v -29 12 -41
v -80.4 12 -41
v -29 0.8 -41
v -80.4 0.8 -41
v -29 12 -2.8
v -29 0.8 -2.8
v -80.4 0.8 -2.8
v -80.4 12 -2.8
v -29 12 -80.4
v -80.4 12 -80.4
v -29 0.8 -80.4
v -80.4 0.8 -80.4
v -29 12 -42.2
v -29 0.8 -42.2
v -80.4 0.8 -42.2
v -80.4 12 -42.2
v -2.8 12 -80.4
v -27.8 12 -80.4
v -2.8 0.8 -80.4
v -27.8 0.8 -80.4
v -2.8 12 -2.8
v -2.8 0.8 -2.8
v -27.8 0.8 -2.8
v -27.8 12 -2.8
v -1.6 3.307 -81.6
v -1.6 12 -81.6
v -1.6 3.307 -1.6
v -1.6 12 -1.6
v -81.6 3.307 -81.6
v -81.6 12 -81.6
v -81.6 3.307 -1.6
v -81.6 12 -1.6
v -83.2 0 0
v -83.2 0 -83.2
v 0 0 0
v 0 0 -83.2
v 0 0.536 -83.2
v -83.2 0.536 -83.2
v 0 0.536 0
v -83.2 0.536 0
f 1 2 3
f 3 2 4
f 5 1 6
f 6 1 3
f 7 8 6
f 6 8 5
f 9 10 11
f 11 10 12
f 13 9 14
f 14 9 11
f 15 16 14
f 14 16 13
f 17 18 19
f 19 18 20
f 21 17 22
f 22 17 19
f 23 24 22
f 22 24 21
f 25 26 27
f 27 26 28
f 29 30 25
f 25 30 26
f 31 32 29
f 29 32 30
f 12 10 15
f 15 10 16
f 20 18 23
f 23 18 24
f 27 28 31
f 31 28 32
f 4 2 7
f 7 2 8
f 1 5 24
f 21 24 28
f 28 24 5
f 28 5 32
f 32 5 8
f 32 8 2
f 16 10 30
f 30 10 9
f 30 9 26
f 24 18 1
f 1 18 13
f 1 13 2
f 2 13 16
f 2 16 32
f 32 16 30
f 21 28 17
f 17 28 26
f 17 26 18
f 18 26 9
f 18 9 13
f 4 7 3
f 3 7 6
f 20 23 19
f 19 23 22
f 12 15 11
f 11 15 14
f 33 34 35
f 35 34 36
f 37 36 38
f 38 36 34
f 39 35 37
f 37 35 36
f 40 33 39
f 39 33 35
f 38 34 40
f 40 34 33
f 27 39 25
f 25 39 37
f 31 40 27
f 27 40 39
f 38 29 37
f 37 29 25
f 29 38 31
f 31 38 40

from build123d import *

# Parameters (mm, degrees)
SKICA1_W                = 83.2
SKICA1_H                = 83.2
P_IDAT_VYSUNUT_M1_DEPTH = 0.8
SKICA1_3_W              = 80
SKICA1_3_H              = 80
SKICA1_3_W_2            = 25
SKICA1_3_H_2            = 77.6
SKICA1_3_W_3            = 51.4
SKICA1_3_H_3            = 38.2
P_IDAT_VYSUNUT_M2_DEPTH = 12
SKICA1_4_W              = 83.2
SKICA1_4_H              = 83.2
SKICA1_4_W_2            = 80
SKICA1_4_H_2            = 80
P_IDAT_VYSUNUT_M3_DEPTH = 4
ZKOSEN_2_SIZE           = 3.464101615
ZKOSEN_2_SIZE_2         = 2


with BuildPart() as part:
    # Skica1 → Přidat vysunutím1 (new body)
    with BuildSketch(Plane(origin=(0, 0, 0), x_dir=(1, 0, 0), z_dir=(0, 1, 0))):
        with Locations((-41.6, 41.6)):
            Rectangle(SKICA1_W, SKICA1_H)
    extrude(amount=P_IDAT_VYSUNUT_M1_DEPTH)

    # Skica1<3> → Přidat vysunutím2 (add)
    with BuildSketch(Plane(origin=(0, 0, 0), x_dir=(1, 0, 0), z_dir=(0, 1, 0))):
        with Locations((-41.6, 41.6)):
            Rectangle(SKICA1_3_W, SKICA1_3_H)
        with Locations((-15.3, 41.6)):
            Rectangle(SKICA1_3_W_2, SKICA1_3_H_2, mode=Mode.SUBTRACT)
        with Locations((-54.7, 61.3)):
            Rectangle(SKICA1_3_W_3, SKICA1_3_H_3, mode=Mode.SUBTRACT)
        with Locations((-54.7, 21.9)):
            Rectangle(SKICA1_3_W_3, SKICA1_3_H_3, mode=Mode.SUBTRACT)
    extrude(amount=P_IDAT_VYSUNUT_M2_DEPTH)

    # Skica1<4> → Přidat vysunutím3 (add)
    with BuildSketch(Plane(origin=(0, 0, 0), x_dir=(1, 0, 0), z_dir=(0, 1, 0))):
        with Locations((-41.6, 41.6)):
            Rectangle(SKICA1_4_W, SKICA1_4_H)
        with Locations((-41.6, 41.6)):
            Rectangle(SKICA1_4_W_2, SKICA1_4_H_2, mode=Mode.SUBTRACT)
    extrude(amount=P_IDAT_VYSUNUT_M3_DEPTH)

    # Zkosení2
    # the kernel refuses this chamfer: 3.464101615, 2 mm, written as the material it takes off along each edge
    with BuildSketch(Plane(origin=(-83.2, 4, 8.961927941), x_dir=(-0.0193267656126997, -0.9998132206222079, 0), z_dir=(0, 0, -1))) as zkosen_2_piece_1_section:
        Polygon((ZKOSEN_2_SIZE * 0.999813220662, -ZKOSEN_2_SIZE * 0.0193267656135), (-ZKOSEN_2_SIZE_2 * 0.0193267656127, -ZKOSEN_2_SIZE_2 * 0.999813220622), (0, 0), align=None)
    zkosen_2_piece_1 = extrude(amount=101.123855882, mode=Mode.PRIVATE)
    zkosen_2_piece_1 = split(zkosen_2_piece_1, bisect_by=Plane(origin=(-81.6, 2.781142692, 3.680963971), z_dir=(-1, 0, 0)), keep=Keep.TOP, mode=Mode.PRIVATE)
    zkosen_2_piece_1 = split(zkosen_2_piece_1, bisect_by=Plane(origin=(-82.620942714, 2.781142692, -1.6), z_dir=(0, 0, 1)), keep=Keep.TOP, mode=Mode.PRIVATE)
    add(zkosen_2_piece_1, mode=Mode.SUBTRACT)
    with BuildSketch(Plane(origin=(-83.2, 4, 8.961927941), x_dir=(-0.0193267656126997, -0.9998132206222079, 0), z_dir=(0, 0, -1))) as zkosen_2_piece_2_section:
        Polygon((ZKOSEN_2_SIZE * 0.999813220662, -ZKOSEN_2_SIZE * 0.0193267656135), (-ZKOSEN_2_SIZE_2 * 0.0193267656127, -ZKOSEN_2_SIZE_2 * 0.999813220622), (0, 0), align=None)
    zkosen_2_piece_2 = extrude(amount=101.123855882, mode=Mode.PRIVATE)
    zkosen_2_piece_2 = split(zkosen_2_piece_2, bisect_by=Plane(origin=(-81.6, 3.870737408, 3.680963971), z_dir=(1, 0, 0)), keep=Keep.TOP, mode=Mode.PRIVATE)
    zkosen_2_piece_2 = split(zkosen_2_piece_2, bisect_by=Plane(origin=(-81.431601135, 3.870737408, -1.6), z_dir=(0, 0, 1)), keep=Keep.TOP, mode=Mode.PRIVATE)
    add(zkosen_2_piece_2, mode=Mode.SUBTRACT)
    with BuildSketch(Plane(origin=(-83.2, 4, 8.961927941), x_dir=(-0.0193267656126997, -0.9998132206222079, 0), z_dir=(0, 0, -1))) as zkosen_2_piece_3_section:
        Polygon((ZKOSEN_2_SIZE * 0.999813220662, -ZKOSEN_2_SIZE * 0.0193267656135), (-ZKOSEN_2_SIZE_2 * 0.0193267656127, -ZKOSEN_2_SIZE_2 * 0.999813220622), (0, 0), align=None)
    zkosen_2_piece_3 = extrude(amount=101.123855882, mode=Mode.PRIVATE)
    zkosen_2_piece_3 = split(zkosen_2_piece_3, bisect_by=Plane(origin=(-81.6, 2.781142692, -41.6), z_dir=(-1, 0, 0)), keep=Keep.TOP, mode=Mode.PRIVATE)
    zkosen_2_piece_3 = split(zkosen_2_piece_3, bisect_by=Plane(origin=(-82.620942714, 2.781142692, -1.6), z_dir=(0, 0, -1)), keep=Keep.TOP, mode=Mode.PRIVATE)
    zkosen_2_piece_3 = split(zkosen_2_piece_3, bisect_by=Plane(origin=(-82.620942714, 2.781142692, -81.6), z_dir=(0, 0, 1)), keep=Keep.TOP, mode=Mode.PRIVATE)
    add(zkosen_2_piece_3, mode=Mode.SUBTRACT)
    with BuildSketch(Plane(origin=(-83.2, 4, 8.961927941), x_dir=(-0.0193267656126997, -0.9998132206222079, 0), z_dir=(0, 0, -1))) as zkosen_2_piece_4_section:
        Polygon((ZKOSEN_2_SIZE * 0.999813220662, -ZKOSEN_2_SIZE * 0.0193267656135), (-ZKOSEN_2_SIZE_2 * 0.0193267656127, -ZKOSEN_2_SIZE_2 * 0.999813220622), (0, 0), align=None)
    zkosen_2_piece_4 = extrude(amount=101.123855882, mode=Mode.PRIVATE)
    zkosen_2_piece_4 = split(zkosen_2_piece_4, bisect_by=Plane(origin=(-81.6, 2.781142692, -86.880963971), z_dir=(-1, 0, 0)), keep=Keep.TOP, mode=Mode.PRIVATE)
    zkosen_2_piece_4 = split(zkosen_2_piece_4, bisect_by=Plane(origin=(-82.620942714, 2.781142692, -81.6), z_dir=(0, 0, -1)), keep=Keep.TOP, mode=Mode.PRIVATE)
    add(zkosen_2_piece_4, mode=Mode.SUBTRACT)
    with BuildSketch(Plane(origin=(-83.2, 4, 8.961927941), x_dir=(-0.0193267656126997, -0.9998132206222079, 0), z_dir=(0, 0, -1))) as zkosen_2_piece_5_section:
        Polygon((ZKOSEN_2_SIZE * 0.999813220662, -ZKOSEN_2_SIZE * 0.0193267656135), (-ZKOSEN_2_SIZE_2 * 0.0193267656127, -ZKOSEN_2_SIZE_2 * 0.999813220622), (0, 0), align=None)
    zkosen_2_piece_5 = extrude(amount=101.123855882, mode=Mode.PRIVATE)
    zkosen_2_piece_5 = split(zkosen_2_piece_5, bisect_by=Plane(origin=(-81.6, 3.870737408, -86.880963971), z_dir=(1, 0, 0)), keep=Keep.TOP, mode=Mode.PRIVATE)
    zkosen_2_piece_5 = split(zkosen_2_piece_5, bisect_by=Plane(origin=(-81.431601135, 3.870737408, -81.6), z_dir=(0, 0, -1)), keep=Keep.TOP, mode=Mode.PRIVATE)
    add(zkosen_2_piece_5, mode=Mode.SUBTRACT)
    with BuildSketch(Plane(origin=(-92.161927941, 4, -83.2), x_dir=(0, -0.9998132206222079, -0.0193267656126997), z_dir=(1, 0, 0))) as zkosen_2_piece_6_section:
        Polygon((ZKOSEN_2_SIZE * 0.999813220662, -ZKOSEN_2_SIZE * 0.0193267656135), (-ZKOSEN_2_SIZE_2 * 0.0193267656127, -ZKOSEN_2_SIZE_2 * 0.999813220622), (0, 0), align=None)
    zkosen_2_piece_6 = extrude(amount=101.123855882, mode=Mode.PRIVATE)
    zkosen_2_piece_6 = split(zkosen_2_piece_6, bisect_by=Plane(origin=(-81.6, 2.781142692, -82.620942714), z_dir=(-1, 0, 0)), keep=Keep.TOP, mode=Mode.PRIVATE)
    zkosen_2_piece_6 = split(zkosen_2_piece_6, bisect_by=Plane(origin=(-86.880963971, 2.781142692, -81.6), z_dir=(0, 0, -1)), keep=Keep.TOP, mode=Mode.PRIVATE)
    add(zkosen_2_piece_6, mode=Mode.SUBTRACT)
    with BuildSketch(Plane(origin=(-92.161927941, 4, -83.2), x_dir=(0, -0.9998132206222079, -0.0193267656126997), z_dir=(1, 0, 0))) as zkosen_2_piece_7_section:
        Polygon((ZKOSEN_2_SIZE * 0.999813220662, -ZKOSEN_2_SIZE * 0.0193267656135), (-ZKOSEN_2_SIZE_2 * 0.0193267656127, -ZKOSEN_2_SIZE_2 * 0.999813220622), (0, 0), align=None)
    zkosen_2_piece_7 = extrude(amount=101.123855882, mode=Mode.PRIVATE)
    zkosen_2_piece_7 = split(zkosen_2_piece_7, bisect_by=Plane(origin=(-81.6, 3.870737408, -81.431601135), z_dir=(-1, 0, 0)), keep=Keep.TOP, mode=Mode.PRIVATE)
    zkosen_2_piece_7 = split(zkosen_2_piece_7, bisect_by=Plane(origin=(-86.880963971, 3.870737408, -81.6), z_dir=(0, 0, 1)), keep=Keep.TOP, mode=Mode.PRIVATE)
    add(zkosen_2_piece_7, mode=Mode.SUBTRACT)
    with BuildSketch(Plane(origin=(-92.161927941, 4, -83.2), x_dir=(0, -0.9998132206222079, -0.0193267656126997), z_dir=(1, 0, 0))) as zkosen_2_piece_8_section:
        Polygon((ZKOSEN_2_SIZE * 0.999813220662, -ZKOSEN_2_SIZE * 0.0193267656135), (-ZKOSEN_2_SIZE_2 * 0.0193267656127, -ZKOSEN_2_SIZE_2 * 0.999813220622), (0, 0), align=None)
    zkosen_2_piece_8 = extrude(amount=101.123855882, mode=Mode.PRIVATE)
    zkosen_2_piece_8 = split(zkosen_2_piece_8, bisect_by=Plane(origin=(-81.6, 2.781142692, -82.620942714), z_dir=(1, 0, 0)), keep=Keep.TOP, mode=Mode.PRIVATE)
    zkosen_2_piece_8 = split(zkosen_2_piece_8, bisect_by=Plane(origin=(-1.6, 2.781142692, -82.620942714), z_dir=(-1, 0, 0)), keep=Keep.TOP, mode=Mode.PRIVATE)
    zkosen_2_piece_8 = split(zkosen_2_piece_8, bisect_by=Plane(origin=(-41.6, 2.781142692, -81.6), z_dir=(0, 0, -1)), keep=Keep.TOP, mode=Mode.PRIVATE)
    add(zkosen_2_piece_8, mode=Mode.SUBTRACT)
    with BuildSketch(Plane(origin=(-92.161927941, 4, -83.2), x_dir=(0, -0.9998132206222079, -0.0193267656126997), z_dir=(1, 0, 0))) as zkosen_2_piece_9_section:
        Polygon((ZKOSEN_2_SIZE * 0.999813220662, -ZKOSEN_2_SIZE * 0.0193267656135), (-ZKOSEN_2_SIZE_2 * 0.0193267656127, -ZKOSEN_2_SIZE_2 * 0.999813220622), (0, 0), align=None)
    zkosen_2_piece_9 = extrude(amount=101.123855882, mode=Mode.PRIVATE)
    zkosen_2_piece_9 = split(zkosen_2_piece_9, bisect_by=Plane(origin=(-1.6, 2.781142692, -82.620942714), z_dir=(1, 0, 0)), keep=Keep.TOP, mode=Mode.PRIVATE)
    zkosen_2_piece_9 = split(zkosen_2_piece_9, bisect_by=Plane(origin=(3.680963971, 2.781142692, -81.6), z_dir=(0, 0, -1)), keep=Keep.TOP, mode=Mode.PRIVATE)
    add(zkosen_2_piece_9, mode=Mode.SUBTRACT)
    with BuildSketch(Plane(origin=(-92.161927941, 4, -83.2), x_dir=(0, -0.9998132206222079, -0.0193267656126997), z_dir=(1, 0, 0))) as zkosen_2_piece_10_section:
        Polygon((ZKOSEN_2_SIZE * 0.999813220662, -ZKOSEN_2_SIZE * 0.0193267656135), (-ZKOSEN_2_SIZE_2 * 0.0193267656127, -ZKOSEN_2_SIZE_2 * 0.999813220622), (0, 0), align=None)
    zkosen_2_piece_10 = extrude(amount=101.123855882, mode=Mode.PRIVATE)
    zkosen_2_piece_10 = split(zkosen_2_piece_10, bisect_by=Plane(origin=(-1.6, 3.870737408, -81.431601135), z_dir=(1, 0, 0)), keep=Keep.TOP, mode=Mode.PRIVATE)
    zkosen_2_piece_10 = split(zkosen_2_piece_10, bisect_by=Plane(origin=(3.680963971, 3.870737408, -81.6), z_dir=(0, 0, 1)), keep=Keep.TOP, mode=Mode.PRIVATE)
    add(zkosen_2_piece_10, mode=Mode.SUBTRACT)
    with BuildSketch(Plane(origin=(0, 4, -92.161927941), x_dir=(-0.9983227437537926, 0.057893862402671484, 0), z_dir=(0, 0, 1))) as zkosen_2_piece_11_section:
        Polygon((ZKOSEN_2_SIZE_2 * 0.998322743754, ZKOSEN_2_SIZE_2 * 0.0578938624027), (-ZKOSEN_2_SIZE * 0.057893862405, ZKOSEN_2_SIZE * 0.998322743793), (0, 0), align=None)
    zkosen_2_piece_11 = extrude(amount=101.123855882, mode=Mode.PRIVATE)
    zkosen_2_piece_11 = split(zkosen_2_piece_11, bisect_by=Plane(origin=(-1.6, 3.870737408, -86.880963971), z_dir=(-1, 0, 0)), keep=Keep.TOP, mode=Mode.PRIVATE)
    zkosen_2_piece_11 = split(zkosen_2_piece_11, bisect_by=Plane(origin=(-1.768398865, 3.870737408, -81.6), z_dir=(0, 0, -1)), keep=Keep.TOP, mode=Mode.PRIVATE)
    add(zkosen_2_piece_11, mode=Mode.SUBTRACT)
    with BuildSketch(Plane(origin=(0, 4, -92.161927941), x_dir=(-0.9983227437537926, 0.057893862402671484, 0), z_dir=(0, 0, 1))) as zkosen_2_piece_12_section:
        Polygon((ZKOSEN_2_SIZE_2 * 0.998322743754, ZKOSEN_2_SIZE_2 * 0.0578938624027), (-ZKOSEN_2_SIZE * 0.057893862405, ZKOSEN_2_SIZE * 0.998322743793), (0, 0), align=None)
    zkosen_2_piece_12 = extrude(amount=101.123855882, mode=Mode.PRIVATE)
    zkosen_2_piece_12 = split(zkosen_2_piece_12, bisect_by=Plane(origin=(-1.6, 2.781142692, -86.880963971), z_dir=(1, 0, 0)), keep=Keep.TOP, mode=Mode.PRIVATE)
    zkosen_2_piece_12 = split(zkosen_2_piece_12, bisect_by=Plane(origin=(-0.579057286, 2.781142692, -81.6), z_dir=(0, 0, -1)), keep=Keep.TOP, mode=Mode.PRIVATE)
    add(zkosen_2_piece_12, mode=Mode.SUBTRACT)
    with BuildSketch(Plane(origin=(0, 4, -92.161927941), x_dir=(-0.9983227437537926, 0.057893862402671484, 0), z_dir=(0, 0, 1))) as zkosen_2_piece_13_section:
        Polygon((ZKOSEN_2_SIZE_2 * 0.998322743754, ZKOSEN_2_SIZE_2 * 0.0578938624027), (-ZKOSEN_2_SIZE * 0.057893862405, ZKOSEN_2_SIZE * 0.998322743793), (0, 0), align=None)
    zkosen_2_piece_13 = extrude(amount=101.123855882, mode=Mode.PRIVATE)
    zkosen_2_piece_13 = split(zkosen_2_piece_13, bisect_by=Plane(origin=(-0.579057286, 2.781142692, -1.6), z_dir=(0, 0, -1)), keep=Keep.TOP, mode=Mode.PRIVATE)
    zkosen_2_piece_13 = split(zkosen_2_piece_13, bisect_by=Plane(origin=(-1.6, 2.781142692, -41.6), z_dir=(1, 0, 0)), keep=Keep.TOP, mode=Mode.PRIVATE)
    zkosen_2_piece_13 = split(zkosen_2_piece_13, bisect_by=Plane(origin=(-0.579057286, 2.781142692, -81.6), z_dir=(0, 0, 1)), keep=Keep.TOP, mode=Mode.PRIVATE)
    add(zkosen_2_piece_13, mode=Mode.SUBTRACT)
    with BuildSketch(Plane(origin=(0, 4, -92.161927941), x_dir=(-0.9983227437537926, 0.057893862402671484, 0), z_dir=(0, 0, 1))) as zkosen_2_piece_14_section:
        Polygon((ZKOSEN_2_SIZE_2 * 0.998322743754, ZKOSEN_2_SIZE_2 * 0.0578938624027), (-ZKOSEN_2_SIZE * 0.057893862405, ZKOSEN_2_SIZE * 0.998322743793), (0, 0), align=None)
    zkosen_2_piece_14 = extrude(amount=101.123855882, mode=Mode.PRIVATE)
    zkosen_2_piece_14 = split(zkosen_2_piece_14, bisect_by=Plane(origin=(-1.768398865, 3.870737408, -1.6), z_dir=(0, 0, 1)), keep=Keep.TOP, mode=Mode.PRIVATE)
    zkosen_2_piece_14 = split(zkosen_2_piece_14, bisect_by=Plane(origin=(-1.6, 3.870737408, 3.680963971), z_dir=(-1, 0, 0)), keep=Keep.TOP, mode=Mode.PRIVATE)
    add(zkosen_2_piece_14, mode=Mode.SUBTRACT)
    with BuildSketch(Plane(origin=(0, 4, -92.161927941), x_dir=(-0.9983227437537926, 0.057893862402671484, 0), z_dir=(0, 0, 1))) as zkosen_2_piece_15_section:
        Polygon((ZKOSEN_2_SIZE_2 * 0.998322743754, ZKOSEN_2_SIZE_2 * 0.0578938624027), (-ZKOSEN_2_SIZE * 0.057893862405, ZKOSEN_2_SIZE * 0.998322743793), (0, 0), align=None)
    zkosen_2_piece_15 = extrude(amount=101.123855882, mode=Mode.PRIVATE)
    zkosen_2_piece_15 = split(zkosen_2_piece_15, bisect_by=Plane(origin=(-0.579057286, 2.781142692, -1.6), z_dir=(0, 0, 1)), keep=Keep.TOP, mode=Mode.PRIVATE)
    zkosen_2_piece_15 = split(zkosen_2_piece_15, bisect_by=Plane(origin=(-1.6, 2.781142692, 3.680963971), z_dir=(1, 0, 0)), keep=Keep.TOP, mode=Mode.PRIVATE)
    add(zkosen_2_piece_15, mode=Mode.SUBTRACT)
    with BuildSketch(Plane(origin=(8.961927941, 4, 0), x_dir=(0, -0.9998132206222079, 0.01932676561270061), z_dir=(-1, 0, 0))) as zkosen_2_piece_16_section:
        Polygon((ZKOSEN_2_SIZE * 0.999813220662, -ZKOSEN_2_SIZE * 0.0193267656135), (-ZKOSEN_2_SIZE_2 * 0.0193267656127, -ZKOSEN_2_SIZE_2 * 0.999813220622), (0, 0), align=None)
    zkosen_2_piece_16 = extrude(amount=101.123855882, mode=Mode.PRIVATE)
    zkosen_2_piece_16 = split(zkosen_2_piece_16, bisect_by=Plane(origin=(3.680963971, 2.781142692, -1.6), z_dir=(0, 0, 1)), keep=Keep.TOP, mode=Mode.PRIVATE)
    zkosen_2_piece_16 = split(zkosen_2_piece_16, bisect_by=Plane(origin=(-1.6, 2.781142692, -0.579057286), z_dir=(1, 0, 0)), keep=Keep.TOP, mode=Mode.PRIVATE)
    add(zkosen_2_piece_16, mode=Mode.SUBTRACT)
    with BuildSketch(Plane(origin=(8.961927941, 4, 0), x_dir=(0, -0.9998132206222079, 0.01932676561270061), z_dir=(-1, 0, 0))) as zkosen_2_piece_17_section:
        Polygon((ZKOSEN_2_SIZE * 0.999813220662, -ZKOSEN_2_SIZE * 0.0193267656135), (-ZKOSEN_2_SIZE_2 * 0.0193267656127, -ZKOSEN_2_SIZE_2 * 0.999813220622), (0, 0), align=None)
    zkosen_2_piece_17 = extrude(amount=101.123855882, mode=Mode.PRIVATE)
    zkosen_2_piece_17 = split(zkosen_2_piece_17, bisect_by=Plane(origin=(3.680963971, 3.870737408, -1.6), z_dir=(0, 0, -1)), keep=Keep.TOP, mode=Mode.PRIVATE)
    zkosen_2_piece_17 = split(zkosen_2_piece_17, bisect_by=Plane(origin=(-1.6, 3.870737408, -1.768398865), z_dir=(1, 0, 0)), keep=Keep.TOP, mode=Mode.PRIVATE)
    add(zkosen_2_piece_17, mode=Mode.SUBTRACT)
    with BuildSketch(Plane(origin=(8.961927941, 4, 0), x_dir=(0, -0.9998132206222079, 0.01932676561270061), z_dir=(-1, 0, 0))) as zkosen_2_piece_18_section:
        Polygon((ZKOSEN_2_SIZE * 0.999813220662, -ZKOSEN_2_SIZE * 0.0193267656135), (-ZKOSEN_2_SIZE_2 * 0.0193267656127, -ZKOSEN_2_SIZE_2 * 0.999813220622), (0, 0), align=None)
    zkosen_2_piece_18 = extrude(amount=101.123855882, mode=Mode.PRIVATE)
    zkosen_2_piece_18 = split(zkosen_2_piece_18, bisect_by=Plane(origin=(-81.6, 2.781142692, -0.579057286), z_dir=(1, 0, 0)), keep=Keep.TOP, mode=Mode.PRIVATE)
    zkosen_2_piece_18 = split(zkosen_2_piece_18, bisect_by=Plane(origin=(-41.6, 2.781142692, -1.6), z_dir=(0, 0, 1)), keep=Keep.TOP, mode=Mode.PRIVATE)
    zkosen_2_piece_18 = split(zkosen_2_piece_18, bisect_by=Plane(origin=(-1.6, 2.781142692, -0.579057286), z_dir=(-1, 0, 0)), keep=Keep.TOP, mode=Mode.PRIVATE)
    add(zkosen_2_piece_18, mode=Mode.SUBTRACT)
    with BuildSketch(Plane(origin=(8.961927941, 4, 0), x_dir=(0, -0.9998132206222079, 0.01932676561270061), z_dir=(-1, 0, 0))) as zkosen_2_piece_19_section:
        Polygon((ZKOSEN_2_SIZE * 0.999813220662, -ZKOSEN_2_SIZE * 0.0193267656135), (-ZKOSEN_2_SIZE_2 * 0.0193267656127, -ZKOSEN_2_SIZE_2 * 0.999813220622), (0, 0), align=None)
    zkosen_2_piece_19 = extrude(amount=101.123855882, mode=Mode.PRIVATE)
    zkosen_2_piece_19 = split(zkosen_2_piece_19, bisect_by=Plane(origin=(-81.6, 2.781142692, -0.579057286), z_dir=(-1, 0, 0)), keep=Keep.TOP, mode=Mode.PRIVATE)
    zkosen_2_piece_19 = split(zkosen_2_piece_19, bisect_by=Plane(origin=(-86.880963971, 2.781142692, -1.6), z_dir=(0, 0, 1)), keep=Keep.TOP, mode=Mode.PRIVATE)
    add(zkosen_2_piece_19, mode=Mode.SUBTRACT)
    with BuildSketch(Plane(origin=(8.961927941, 4, 0), x_dir=(0, -0.9998132206222079, 0.01932676561270061), z_dir=(-1, 0, 0))) as zkosen_2_piece_20_section:
        Polygon((ZKOSEN_2_SIZE * 0.999813220662, -ZKOSEN_2_SIZE * 0.0193267656135), (-ZKOSEN_2_SIZE_2 * 0.0193267656127, -ZKOSEN_2_SIZE_2 * 0.999813220622), (0, 0), align=None)
    zkosen_2_piece_20 = extrude(amount=101.123855882, mode=Mode.PRIVATE)
    zkosen_2_piece_20 = split(zkosen_2_piece_20, bisect_by=Plane(origin=(-81.6, 3.870737408, -1.768398865), z_dir=(-1, 0, 0)), keep=Keep.TOP, mode=Mode.PRIVATE)
    zkosen_2_piece_20 = split(zkosen_2_piece_20, bisect_by=Plane(origin=(-86.880963971, 3.870737408, -1.6), z_dir=(0, 0, -1)), keep=Keep.TOP, mode=Mode.PRIVATE)
    add(zkosen_2_piece_20, mode=Mode.SUBTRACT)


solid = part.part
